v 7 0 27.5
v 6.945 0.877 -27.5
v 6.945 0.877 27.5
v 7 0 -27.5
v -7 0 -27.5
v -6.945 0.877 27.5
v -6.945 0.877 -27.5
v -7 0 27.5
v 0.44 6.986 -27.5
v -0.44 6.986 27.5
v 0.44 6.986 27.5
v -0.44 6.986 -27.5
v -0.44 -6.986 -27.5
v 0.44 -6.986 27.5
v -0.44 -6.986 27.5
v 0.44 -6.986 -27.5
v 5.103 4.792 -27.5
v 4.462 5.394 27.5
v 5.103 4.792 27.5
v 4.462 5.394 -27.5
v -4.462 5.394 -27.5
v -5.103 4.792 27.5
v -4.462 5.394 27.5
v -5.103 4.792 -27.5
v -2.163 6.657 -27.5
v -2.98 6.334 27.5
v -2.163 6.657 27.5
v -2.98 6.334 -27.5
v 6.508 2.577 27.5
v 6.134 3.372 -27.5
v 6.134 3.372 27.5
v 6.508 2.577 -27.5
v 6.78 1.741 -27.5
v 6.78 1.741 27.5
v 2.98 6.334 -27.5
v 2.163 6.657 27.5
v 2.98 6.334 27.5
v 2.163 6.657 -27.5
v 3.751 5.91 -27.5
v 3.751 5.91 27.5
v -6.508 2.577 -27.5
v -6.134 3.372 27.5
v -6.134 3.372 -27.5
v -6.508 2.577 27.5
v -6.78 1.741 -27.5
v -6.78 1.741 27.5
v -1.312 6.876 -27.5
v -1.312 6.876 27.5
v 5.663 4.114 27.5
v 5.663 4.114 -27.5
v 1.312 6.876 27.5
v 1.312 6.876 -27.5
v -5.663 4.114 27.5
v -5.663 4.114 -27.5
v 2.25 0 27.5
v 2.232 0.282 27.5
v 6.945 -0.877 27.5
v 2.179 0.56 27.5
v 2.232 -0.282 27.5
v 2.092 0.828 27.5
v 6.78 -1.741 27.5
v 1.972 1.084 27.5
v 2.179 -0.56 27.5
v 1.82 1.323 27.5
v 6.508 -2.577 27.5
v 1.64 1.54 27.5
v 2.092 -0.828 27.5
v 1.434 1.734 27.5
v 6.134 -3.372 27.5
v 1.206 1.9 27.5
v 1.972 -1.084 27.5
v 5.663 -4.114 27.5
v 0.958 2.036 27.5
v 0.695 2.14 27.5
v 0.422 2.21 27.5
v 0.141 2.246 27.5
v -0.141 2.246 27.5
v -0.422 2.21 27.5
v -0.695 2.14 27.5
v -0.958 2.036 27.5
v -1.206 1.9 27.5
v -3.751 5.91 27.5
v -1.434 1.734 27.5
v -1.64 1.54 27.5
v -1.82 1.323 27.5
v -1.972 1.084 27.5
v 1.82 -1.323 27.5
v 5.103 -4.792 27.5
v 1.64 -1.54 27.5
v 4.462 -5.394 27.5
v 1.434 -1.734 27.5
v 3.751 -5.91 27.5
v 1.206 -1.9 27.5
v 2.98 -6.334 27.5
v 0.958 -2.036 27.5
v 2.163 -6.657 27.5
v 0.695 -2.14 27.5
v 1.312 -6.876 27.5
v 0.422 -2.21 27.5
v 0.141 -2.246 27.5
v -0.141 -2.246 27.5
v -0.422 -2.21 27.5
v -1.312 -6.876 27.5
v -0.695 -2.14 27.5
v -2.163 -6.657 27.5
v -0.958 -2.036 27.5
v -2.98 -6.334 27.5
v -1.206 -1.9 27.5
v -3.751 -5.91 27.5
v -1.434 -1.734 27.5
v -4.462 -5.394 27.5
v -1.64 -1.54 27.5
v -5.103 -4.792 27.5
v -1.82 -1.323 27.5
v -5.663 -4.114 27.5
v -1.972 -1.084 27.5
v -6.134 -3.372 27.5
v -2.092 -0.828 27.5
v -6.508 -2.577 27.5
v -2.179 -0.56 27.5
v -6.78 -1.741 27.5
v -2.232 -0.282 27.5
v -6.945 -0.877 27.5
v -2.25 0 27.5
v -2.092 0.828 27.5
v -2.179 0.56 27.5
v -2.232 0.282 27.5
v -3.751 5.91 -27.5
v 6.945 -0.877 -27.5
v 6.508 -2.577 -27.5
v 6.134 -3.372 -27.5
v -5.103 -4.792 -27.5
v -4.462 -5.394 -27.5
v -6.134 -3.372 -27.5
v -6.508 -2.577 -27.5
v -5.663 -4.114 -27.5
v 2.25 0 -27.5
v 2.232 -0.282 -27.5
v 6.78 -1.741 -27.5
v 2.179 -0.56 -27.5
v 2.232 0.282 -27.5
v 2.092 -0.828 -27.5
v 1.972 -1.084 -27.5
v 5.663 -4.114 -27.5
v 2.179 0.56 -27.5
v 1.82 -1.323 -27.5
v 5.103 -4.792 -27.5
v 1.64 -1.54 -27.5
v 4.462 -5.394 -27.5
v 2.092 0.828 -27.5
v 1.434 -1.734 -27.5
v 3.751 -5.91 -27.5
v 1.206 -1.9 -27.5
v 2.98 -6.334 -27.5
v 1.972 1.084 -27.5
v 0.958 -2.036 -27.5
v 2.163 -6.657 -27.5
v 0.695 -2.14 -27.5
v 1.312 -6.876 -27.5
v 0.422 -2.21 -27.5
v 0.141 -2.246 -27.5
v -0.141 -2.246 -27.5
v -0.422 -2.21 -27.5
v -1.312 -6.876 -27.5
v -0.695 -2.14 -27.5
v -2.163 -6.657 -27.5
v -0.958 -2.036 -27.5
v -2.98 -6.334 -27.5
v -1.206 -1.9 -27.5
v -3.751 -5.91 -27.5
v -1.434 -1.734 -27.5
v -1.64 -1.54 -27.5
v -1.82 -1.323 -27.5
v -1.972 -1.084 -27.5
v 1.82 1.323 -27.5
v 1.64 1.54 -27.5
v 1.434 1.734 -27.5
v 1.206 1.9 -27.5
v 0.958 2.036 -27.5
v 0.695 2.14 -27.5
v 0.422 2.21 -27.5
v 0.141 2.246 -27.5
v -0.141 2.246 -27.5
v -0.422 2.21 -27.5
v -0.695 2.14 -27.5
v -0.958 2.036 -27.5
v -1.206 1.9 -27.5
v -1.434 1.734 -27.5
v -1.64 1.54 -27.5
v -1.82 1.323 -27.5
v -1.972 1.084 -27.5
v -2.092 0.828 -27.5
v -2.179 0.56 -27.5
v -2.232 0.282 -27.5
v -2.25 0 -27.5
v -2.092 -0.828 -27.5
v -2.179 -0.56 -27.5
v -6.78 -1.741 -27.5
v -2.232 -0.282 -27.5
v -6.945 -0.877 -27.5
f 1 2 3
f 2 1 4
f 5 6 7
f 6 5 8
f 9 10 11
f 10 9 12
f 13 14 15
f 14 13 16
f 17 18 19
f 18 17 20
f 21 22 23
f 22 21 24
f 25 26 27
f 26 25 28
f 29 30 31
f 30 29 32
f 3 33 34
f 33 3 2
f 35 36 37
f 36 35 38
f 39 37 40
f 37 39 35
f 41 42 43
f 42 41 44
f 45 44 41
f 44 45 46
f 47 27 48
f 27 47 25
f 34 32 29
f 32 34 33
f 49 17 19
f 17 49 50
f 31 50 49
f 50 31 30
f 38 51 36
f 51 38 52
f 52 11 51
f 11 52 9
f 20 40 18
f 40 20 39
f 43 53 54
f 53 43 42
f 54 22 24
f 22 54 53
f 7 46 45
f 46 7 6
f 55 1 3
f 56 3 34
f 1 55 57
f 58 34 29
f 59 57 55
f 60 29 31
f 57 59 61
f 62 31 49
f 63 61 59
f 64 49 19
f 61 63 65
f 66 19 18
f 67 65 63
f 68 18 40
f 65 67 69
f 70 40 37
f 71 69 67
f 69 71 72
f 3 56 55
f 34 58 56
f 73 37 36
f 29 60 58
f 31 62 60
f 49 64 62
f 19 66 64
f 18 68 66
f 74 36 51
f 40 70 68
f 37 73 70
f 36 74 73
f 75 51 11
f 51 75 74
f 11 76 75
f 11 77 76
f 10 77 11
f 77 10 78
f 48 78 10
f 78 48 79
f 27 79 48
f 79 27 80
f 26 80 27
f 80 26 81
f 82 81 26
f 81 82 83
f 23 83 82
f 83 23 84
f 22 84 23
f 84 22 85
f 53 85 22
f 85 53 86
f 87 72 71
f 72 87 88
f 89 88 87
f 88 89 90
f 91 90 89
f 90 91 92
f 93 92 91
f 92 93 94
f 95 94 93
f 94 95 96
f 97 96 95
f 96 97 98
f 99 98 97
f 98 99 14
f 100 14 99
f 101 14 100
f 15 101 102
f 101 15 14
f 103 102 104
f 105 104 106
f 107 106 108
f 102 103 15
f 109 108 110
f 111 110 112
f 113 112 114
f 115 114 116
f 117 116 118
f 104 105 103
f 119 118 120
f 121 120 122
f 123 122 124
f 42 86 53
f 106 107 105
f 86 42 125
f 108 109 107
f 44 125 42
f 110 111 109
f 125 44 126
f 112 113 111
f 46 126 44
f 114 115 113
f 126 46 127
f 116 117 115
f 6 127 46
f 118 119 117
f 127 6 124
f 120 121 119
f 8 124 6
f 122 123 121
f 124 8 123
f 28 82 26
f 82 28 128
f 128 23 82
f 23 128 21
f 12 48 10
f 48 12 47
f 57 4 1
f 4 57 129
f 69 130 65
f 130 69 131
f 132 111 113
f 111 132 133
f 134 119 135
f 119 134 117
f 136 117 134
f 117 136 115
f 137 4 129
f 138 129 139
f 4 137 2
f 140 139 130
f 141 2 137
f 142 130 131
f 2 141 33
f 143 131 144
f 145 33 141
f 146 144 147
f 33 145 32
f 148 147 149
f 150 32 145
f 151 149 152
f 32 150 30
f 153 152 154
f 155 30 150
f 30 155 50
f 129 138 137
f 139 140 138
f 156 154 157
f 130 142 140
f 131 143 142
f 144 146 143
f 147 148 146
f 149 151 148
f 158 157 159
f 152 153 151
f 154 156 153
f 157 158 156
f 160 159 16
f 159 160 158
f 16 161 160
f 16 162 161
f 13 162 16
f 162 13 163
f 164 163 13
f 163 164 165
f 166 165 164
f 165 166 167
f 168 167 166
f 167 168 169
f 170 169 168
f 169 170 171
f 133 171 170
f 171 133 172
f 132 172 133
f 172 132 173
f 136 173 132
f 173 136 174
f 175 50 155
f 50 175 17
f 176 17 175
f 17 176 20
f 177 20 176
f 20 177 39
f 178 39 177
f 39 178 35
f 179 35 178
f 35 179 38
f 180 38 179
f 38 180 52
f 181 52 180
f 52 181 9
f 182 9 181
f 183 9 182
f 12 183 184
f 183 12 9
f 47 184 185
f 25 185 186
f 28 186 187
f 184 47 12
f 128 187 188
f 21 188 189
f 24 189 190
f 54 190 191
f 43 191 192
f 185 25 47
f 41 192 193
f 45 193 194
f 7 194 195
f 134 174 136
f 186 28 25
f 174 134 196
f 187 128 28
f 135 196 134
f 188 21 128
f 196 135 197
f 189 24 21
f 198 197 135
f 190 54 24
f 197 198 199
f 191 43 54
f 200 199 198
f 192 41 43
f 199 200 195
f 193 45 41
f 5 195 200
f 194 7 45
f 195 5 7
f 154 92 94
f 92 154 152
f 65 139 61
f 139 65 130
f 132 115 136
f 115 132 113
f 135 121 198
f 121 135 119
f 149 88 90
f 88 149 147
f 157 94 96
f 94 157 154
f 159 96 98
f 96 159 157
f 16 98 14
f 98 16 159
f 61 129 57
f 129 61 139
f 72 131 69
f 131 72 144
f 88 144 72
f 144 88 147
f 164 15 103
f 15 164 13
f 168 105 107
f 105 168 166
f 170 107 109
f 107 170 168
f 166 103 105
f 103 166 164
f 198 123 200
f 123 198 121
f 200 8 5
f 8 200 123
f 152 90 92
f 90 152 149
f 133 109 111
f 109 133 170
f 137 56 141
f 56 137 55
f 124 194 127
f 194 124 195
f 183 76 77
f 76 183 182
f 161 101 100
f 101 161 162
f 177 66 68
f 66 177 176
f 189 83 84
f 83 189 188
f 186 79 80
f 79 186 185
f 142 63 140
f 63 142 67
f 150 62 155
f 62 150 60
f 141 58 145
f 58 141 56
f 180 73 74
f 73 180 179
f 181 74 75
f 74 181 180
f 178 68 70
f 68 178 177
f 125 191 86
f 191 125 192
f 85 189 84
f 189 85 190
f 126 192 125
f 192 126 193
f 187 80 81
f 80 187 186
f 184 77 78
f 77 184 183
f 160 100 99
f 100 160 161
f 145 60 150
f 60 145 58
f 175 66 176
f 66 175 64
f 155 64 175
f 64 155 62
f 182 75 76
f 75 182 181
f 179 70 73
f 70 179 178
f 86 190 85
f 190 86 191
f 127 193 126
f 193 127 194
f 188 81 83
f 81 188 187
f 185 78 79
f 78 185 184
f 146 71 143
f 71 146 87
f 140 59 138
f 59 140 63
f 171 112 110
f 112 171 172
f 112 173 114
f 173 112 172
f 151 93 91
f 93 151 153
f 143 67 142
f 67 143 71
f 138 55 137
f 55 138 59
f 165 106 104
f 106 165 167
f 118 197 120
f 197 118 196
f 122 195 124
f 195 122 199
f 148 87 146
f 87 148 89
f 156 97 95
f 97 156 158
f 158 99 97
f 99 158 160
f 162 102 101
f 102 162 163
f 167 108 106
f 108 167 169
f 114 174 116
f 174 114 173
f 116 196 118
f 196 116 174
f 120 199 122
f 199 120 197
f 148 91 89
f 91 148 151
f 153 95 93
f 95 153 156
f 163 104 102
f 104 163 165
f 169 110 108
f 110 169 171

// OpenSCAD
$fn = 50;


difference() {
	union() {
		translate(v = [0, 0, -27.5000000000]) {
			cylinder(h = 55, r = 7.0000000000);
		}
	}
	union() {
		translate(v = [0, 0, -100.0000000000]) {
			cylinder(h = 200, r = 2.2500000000);
		}
	}
}
